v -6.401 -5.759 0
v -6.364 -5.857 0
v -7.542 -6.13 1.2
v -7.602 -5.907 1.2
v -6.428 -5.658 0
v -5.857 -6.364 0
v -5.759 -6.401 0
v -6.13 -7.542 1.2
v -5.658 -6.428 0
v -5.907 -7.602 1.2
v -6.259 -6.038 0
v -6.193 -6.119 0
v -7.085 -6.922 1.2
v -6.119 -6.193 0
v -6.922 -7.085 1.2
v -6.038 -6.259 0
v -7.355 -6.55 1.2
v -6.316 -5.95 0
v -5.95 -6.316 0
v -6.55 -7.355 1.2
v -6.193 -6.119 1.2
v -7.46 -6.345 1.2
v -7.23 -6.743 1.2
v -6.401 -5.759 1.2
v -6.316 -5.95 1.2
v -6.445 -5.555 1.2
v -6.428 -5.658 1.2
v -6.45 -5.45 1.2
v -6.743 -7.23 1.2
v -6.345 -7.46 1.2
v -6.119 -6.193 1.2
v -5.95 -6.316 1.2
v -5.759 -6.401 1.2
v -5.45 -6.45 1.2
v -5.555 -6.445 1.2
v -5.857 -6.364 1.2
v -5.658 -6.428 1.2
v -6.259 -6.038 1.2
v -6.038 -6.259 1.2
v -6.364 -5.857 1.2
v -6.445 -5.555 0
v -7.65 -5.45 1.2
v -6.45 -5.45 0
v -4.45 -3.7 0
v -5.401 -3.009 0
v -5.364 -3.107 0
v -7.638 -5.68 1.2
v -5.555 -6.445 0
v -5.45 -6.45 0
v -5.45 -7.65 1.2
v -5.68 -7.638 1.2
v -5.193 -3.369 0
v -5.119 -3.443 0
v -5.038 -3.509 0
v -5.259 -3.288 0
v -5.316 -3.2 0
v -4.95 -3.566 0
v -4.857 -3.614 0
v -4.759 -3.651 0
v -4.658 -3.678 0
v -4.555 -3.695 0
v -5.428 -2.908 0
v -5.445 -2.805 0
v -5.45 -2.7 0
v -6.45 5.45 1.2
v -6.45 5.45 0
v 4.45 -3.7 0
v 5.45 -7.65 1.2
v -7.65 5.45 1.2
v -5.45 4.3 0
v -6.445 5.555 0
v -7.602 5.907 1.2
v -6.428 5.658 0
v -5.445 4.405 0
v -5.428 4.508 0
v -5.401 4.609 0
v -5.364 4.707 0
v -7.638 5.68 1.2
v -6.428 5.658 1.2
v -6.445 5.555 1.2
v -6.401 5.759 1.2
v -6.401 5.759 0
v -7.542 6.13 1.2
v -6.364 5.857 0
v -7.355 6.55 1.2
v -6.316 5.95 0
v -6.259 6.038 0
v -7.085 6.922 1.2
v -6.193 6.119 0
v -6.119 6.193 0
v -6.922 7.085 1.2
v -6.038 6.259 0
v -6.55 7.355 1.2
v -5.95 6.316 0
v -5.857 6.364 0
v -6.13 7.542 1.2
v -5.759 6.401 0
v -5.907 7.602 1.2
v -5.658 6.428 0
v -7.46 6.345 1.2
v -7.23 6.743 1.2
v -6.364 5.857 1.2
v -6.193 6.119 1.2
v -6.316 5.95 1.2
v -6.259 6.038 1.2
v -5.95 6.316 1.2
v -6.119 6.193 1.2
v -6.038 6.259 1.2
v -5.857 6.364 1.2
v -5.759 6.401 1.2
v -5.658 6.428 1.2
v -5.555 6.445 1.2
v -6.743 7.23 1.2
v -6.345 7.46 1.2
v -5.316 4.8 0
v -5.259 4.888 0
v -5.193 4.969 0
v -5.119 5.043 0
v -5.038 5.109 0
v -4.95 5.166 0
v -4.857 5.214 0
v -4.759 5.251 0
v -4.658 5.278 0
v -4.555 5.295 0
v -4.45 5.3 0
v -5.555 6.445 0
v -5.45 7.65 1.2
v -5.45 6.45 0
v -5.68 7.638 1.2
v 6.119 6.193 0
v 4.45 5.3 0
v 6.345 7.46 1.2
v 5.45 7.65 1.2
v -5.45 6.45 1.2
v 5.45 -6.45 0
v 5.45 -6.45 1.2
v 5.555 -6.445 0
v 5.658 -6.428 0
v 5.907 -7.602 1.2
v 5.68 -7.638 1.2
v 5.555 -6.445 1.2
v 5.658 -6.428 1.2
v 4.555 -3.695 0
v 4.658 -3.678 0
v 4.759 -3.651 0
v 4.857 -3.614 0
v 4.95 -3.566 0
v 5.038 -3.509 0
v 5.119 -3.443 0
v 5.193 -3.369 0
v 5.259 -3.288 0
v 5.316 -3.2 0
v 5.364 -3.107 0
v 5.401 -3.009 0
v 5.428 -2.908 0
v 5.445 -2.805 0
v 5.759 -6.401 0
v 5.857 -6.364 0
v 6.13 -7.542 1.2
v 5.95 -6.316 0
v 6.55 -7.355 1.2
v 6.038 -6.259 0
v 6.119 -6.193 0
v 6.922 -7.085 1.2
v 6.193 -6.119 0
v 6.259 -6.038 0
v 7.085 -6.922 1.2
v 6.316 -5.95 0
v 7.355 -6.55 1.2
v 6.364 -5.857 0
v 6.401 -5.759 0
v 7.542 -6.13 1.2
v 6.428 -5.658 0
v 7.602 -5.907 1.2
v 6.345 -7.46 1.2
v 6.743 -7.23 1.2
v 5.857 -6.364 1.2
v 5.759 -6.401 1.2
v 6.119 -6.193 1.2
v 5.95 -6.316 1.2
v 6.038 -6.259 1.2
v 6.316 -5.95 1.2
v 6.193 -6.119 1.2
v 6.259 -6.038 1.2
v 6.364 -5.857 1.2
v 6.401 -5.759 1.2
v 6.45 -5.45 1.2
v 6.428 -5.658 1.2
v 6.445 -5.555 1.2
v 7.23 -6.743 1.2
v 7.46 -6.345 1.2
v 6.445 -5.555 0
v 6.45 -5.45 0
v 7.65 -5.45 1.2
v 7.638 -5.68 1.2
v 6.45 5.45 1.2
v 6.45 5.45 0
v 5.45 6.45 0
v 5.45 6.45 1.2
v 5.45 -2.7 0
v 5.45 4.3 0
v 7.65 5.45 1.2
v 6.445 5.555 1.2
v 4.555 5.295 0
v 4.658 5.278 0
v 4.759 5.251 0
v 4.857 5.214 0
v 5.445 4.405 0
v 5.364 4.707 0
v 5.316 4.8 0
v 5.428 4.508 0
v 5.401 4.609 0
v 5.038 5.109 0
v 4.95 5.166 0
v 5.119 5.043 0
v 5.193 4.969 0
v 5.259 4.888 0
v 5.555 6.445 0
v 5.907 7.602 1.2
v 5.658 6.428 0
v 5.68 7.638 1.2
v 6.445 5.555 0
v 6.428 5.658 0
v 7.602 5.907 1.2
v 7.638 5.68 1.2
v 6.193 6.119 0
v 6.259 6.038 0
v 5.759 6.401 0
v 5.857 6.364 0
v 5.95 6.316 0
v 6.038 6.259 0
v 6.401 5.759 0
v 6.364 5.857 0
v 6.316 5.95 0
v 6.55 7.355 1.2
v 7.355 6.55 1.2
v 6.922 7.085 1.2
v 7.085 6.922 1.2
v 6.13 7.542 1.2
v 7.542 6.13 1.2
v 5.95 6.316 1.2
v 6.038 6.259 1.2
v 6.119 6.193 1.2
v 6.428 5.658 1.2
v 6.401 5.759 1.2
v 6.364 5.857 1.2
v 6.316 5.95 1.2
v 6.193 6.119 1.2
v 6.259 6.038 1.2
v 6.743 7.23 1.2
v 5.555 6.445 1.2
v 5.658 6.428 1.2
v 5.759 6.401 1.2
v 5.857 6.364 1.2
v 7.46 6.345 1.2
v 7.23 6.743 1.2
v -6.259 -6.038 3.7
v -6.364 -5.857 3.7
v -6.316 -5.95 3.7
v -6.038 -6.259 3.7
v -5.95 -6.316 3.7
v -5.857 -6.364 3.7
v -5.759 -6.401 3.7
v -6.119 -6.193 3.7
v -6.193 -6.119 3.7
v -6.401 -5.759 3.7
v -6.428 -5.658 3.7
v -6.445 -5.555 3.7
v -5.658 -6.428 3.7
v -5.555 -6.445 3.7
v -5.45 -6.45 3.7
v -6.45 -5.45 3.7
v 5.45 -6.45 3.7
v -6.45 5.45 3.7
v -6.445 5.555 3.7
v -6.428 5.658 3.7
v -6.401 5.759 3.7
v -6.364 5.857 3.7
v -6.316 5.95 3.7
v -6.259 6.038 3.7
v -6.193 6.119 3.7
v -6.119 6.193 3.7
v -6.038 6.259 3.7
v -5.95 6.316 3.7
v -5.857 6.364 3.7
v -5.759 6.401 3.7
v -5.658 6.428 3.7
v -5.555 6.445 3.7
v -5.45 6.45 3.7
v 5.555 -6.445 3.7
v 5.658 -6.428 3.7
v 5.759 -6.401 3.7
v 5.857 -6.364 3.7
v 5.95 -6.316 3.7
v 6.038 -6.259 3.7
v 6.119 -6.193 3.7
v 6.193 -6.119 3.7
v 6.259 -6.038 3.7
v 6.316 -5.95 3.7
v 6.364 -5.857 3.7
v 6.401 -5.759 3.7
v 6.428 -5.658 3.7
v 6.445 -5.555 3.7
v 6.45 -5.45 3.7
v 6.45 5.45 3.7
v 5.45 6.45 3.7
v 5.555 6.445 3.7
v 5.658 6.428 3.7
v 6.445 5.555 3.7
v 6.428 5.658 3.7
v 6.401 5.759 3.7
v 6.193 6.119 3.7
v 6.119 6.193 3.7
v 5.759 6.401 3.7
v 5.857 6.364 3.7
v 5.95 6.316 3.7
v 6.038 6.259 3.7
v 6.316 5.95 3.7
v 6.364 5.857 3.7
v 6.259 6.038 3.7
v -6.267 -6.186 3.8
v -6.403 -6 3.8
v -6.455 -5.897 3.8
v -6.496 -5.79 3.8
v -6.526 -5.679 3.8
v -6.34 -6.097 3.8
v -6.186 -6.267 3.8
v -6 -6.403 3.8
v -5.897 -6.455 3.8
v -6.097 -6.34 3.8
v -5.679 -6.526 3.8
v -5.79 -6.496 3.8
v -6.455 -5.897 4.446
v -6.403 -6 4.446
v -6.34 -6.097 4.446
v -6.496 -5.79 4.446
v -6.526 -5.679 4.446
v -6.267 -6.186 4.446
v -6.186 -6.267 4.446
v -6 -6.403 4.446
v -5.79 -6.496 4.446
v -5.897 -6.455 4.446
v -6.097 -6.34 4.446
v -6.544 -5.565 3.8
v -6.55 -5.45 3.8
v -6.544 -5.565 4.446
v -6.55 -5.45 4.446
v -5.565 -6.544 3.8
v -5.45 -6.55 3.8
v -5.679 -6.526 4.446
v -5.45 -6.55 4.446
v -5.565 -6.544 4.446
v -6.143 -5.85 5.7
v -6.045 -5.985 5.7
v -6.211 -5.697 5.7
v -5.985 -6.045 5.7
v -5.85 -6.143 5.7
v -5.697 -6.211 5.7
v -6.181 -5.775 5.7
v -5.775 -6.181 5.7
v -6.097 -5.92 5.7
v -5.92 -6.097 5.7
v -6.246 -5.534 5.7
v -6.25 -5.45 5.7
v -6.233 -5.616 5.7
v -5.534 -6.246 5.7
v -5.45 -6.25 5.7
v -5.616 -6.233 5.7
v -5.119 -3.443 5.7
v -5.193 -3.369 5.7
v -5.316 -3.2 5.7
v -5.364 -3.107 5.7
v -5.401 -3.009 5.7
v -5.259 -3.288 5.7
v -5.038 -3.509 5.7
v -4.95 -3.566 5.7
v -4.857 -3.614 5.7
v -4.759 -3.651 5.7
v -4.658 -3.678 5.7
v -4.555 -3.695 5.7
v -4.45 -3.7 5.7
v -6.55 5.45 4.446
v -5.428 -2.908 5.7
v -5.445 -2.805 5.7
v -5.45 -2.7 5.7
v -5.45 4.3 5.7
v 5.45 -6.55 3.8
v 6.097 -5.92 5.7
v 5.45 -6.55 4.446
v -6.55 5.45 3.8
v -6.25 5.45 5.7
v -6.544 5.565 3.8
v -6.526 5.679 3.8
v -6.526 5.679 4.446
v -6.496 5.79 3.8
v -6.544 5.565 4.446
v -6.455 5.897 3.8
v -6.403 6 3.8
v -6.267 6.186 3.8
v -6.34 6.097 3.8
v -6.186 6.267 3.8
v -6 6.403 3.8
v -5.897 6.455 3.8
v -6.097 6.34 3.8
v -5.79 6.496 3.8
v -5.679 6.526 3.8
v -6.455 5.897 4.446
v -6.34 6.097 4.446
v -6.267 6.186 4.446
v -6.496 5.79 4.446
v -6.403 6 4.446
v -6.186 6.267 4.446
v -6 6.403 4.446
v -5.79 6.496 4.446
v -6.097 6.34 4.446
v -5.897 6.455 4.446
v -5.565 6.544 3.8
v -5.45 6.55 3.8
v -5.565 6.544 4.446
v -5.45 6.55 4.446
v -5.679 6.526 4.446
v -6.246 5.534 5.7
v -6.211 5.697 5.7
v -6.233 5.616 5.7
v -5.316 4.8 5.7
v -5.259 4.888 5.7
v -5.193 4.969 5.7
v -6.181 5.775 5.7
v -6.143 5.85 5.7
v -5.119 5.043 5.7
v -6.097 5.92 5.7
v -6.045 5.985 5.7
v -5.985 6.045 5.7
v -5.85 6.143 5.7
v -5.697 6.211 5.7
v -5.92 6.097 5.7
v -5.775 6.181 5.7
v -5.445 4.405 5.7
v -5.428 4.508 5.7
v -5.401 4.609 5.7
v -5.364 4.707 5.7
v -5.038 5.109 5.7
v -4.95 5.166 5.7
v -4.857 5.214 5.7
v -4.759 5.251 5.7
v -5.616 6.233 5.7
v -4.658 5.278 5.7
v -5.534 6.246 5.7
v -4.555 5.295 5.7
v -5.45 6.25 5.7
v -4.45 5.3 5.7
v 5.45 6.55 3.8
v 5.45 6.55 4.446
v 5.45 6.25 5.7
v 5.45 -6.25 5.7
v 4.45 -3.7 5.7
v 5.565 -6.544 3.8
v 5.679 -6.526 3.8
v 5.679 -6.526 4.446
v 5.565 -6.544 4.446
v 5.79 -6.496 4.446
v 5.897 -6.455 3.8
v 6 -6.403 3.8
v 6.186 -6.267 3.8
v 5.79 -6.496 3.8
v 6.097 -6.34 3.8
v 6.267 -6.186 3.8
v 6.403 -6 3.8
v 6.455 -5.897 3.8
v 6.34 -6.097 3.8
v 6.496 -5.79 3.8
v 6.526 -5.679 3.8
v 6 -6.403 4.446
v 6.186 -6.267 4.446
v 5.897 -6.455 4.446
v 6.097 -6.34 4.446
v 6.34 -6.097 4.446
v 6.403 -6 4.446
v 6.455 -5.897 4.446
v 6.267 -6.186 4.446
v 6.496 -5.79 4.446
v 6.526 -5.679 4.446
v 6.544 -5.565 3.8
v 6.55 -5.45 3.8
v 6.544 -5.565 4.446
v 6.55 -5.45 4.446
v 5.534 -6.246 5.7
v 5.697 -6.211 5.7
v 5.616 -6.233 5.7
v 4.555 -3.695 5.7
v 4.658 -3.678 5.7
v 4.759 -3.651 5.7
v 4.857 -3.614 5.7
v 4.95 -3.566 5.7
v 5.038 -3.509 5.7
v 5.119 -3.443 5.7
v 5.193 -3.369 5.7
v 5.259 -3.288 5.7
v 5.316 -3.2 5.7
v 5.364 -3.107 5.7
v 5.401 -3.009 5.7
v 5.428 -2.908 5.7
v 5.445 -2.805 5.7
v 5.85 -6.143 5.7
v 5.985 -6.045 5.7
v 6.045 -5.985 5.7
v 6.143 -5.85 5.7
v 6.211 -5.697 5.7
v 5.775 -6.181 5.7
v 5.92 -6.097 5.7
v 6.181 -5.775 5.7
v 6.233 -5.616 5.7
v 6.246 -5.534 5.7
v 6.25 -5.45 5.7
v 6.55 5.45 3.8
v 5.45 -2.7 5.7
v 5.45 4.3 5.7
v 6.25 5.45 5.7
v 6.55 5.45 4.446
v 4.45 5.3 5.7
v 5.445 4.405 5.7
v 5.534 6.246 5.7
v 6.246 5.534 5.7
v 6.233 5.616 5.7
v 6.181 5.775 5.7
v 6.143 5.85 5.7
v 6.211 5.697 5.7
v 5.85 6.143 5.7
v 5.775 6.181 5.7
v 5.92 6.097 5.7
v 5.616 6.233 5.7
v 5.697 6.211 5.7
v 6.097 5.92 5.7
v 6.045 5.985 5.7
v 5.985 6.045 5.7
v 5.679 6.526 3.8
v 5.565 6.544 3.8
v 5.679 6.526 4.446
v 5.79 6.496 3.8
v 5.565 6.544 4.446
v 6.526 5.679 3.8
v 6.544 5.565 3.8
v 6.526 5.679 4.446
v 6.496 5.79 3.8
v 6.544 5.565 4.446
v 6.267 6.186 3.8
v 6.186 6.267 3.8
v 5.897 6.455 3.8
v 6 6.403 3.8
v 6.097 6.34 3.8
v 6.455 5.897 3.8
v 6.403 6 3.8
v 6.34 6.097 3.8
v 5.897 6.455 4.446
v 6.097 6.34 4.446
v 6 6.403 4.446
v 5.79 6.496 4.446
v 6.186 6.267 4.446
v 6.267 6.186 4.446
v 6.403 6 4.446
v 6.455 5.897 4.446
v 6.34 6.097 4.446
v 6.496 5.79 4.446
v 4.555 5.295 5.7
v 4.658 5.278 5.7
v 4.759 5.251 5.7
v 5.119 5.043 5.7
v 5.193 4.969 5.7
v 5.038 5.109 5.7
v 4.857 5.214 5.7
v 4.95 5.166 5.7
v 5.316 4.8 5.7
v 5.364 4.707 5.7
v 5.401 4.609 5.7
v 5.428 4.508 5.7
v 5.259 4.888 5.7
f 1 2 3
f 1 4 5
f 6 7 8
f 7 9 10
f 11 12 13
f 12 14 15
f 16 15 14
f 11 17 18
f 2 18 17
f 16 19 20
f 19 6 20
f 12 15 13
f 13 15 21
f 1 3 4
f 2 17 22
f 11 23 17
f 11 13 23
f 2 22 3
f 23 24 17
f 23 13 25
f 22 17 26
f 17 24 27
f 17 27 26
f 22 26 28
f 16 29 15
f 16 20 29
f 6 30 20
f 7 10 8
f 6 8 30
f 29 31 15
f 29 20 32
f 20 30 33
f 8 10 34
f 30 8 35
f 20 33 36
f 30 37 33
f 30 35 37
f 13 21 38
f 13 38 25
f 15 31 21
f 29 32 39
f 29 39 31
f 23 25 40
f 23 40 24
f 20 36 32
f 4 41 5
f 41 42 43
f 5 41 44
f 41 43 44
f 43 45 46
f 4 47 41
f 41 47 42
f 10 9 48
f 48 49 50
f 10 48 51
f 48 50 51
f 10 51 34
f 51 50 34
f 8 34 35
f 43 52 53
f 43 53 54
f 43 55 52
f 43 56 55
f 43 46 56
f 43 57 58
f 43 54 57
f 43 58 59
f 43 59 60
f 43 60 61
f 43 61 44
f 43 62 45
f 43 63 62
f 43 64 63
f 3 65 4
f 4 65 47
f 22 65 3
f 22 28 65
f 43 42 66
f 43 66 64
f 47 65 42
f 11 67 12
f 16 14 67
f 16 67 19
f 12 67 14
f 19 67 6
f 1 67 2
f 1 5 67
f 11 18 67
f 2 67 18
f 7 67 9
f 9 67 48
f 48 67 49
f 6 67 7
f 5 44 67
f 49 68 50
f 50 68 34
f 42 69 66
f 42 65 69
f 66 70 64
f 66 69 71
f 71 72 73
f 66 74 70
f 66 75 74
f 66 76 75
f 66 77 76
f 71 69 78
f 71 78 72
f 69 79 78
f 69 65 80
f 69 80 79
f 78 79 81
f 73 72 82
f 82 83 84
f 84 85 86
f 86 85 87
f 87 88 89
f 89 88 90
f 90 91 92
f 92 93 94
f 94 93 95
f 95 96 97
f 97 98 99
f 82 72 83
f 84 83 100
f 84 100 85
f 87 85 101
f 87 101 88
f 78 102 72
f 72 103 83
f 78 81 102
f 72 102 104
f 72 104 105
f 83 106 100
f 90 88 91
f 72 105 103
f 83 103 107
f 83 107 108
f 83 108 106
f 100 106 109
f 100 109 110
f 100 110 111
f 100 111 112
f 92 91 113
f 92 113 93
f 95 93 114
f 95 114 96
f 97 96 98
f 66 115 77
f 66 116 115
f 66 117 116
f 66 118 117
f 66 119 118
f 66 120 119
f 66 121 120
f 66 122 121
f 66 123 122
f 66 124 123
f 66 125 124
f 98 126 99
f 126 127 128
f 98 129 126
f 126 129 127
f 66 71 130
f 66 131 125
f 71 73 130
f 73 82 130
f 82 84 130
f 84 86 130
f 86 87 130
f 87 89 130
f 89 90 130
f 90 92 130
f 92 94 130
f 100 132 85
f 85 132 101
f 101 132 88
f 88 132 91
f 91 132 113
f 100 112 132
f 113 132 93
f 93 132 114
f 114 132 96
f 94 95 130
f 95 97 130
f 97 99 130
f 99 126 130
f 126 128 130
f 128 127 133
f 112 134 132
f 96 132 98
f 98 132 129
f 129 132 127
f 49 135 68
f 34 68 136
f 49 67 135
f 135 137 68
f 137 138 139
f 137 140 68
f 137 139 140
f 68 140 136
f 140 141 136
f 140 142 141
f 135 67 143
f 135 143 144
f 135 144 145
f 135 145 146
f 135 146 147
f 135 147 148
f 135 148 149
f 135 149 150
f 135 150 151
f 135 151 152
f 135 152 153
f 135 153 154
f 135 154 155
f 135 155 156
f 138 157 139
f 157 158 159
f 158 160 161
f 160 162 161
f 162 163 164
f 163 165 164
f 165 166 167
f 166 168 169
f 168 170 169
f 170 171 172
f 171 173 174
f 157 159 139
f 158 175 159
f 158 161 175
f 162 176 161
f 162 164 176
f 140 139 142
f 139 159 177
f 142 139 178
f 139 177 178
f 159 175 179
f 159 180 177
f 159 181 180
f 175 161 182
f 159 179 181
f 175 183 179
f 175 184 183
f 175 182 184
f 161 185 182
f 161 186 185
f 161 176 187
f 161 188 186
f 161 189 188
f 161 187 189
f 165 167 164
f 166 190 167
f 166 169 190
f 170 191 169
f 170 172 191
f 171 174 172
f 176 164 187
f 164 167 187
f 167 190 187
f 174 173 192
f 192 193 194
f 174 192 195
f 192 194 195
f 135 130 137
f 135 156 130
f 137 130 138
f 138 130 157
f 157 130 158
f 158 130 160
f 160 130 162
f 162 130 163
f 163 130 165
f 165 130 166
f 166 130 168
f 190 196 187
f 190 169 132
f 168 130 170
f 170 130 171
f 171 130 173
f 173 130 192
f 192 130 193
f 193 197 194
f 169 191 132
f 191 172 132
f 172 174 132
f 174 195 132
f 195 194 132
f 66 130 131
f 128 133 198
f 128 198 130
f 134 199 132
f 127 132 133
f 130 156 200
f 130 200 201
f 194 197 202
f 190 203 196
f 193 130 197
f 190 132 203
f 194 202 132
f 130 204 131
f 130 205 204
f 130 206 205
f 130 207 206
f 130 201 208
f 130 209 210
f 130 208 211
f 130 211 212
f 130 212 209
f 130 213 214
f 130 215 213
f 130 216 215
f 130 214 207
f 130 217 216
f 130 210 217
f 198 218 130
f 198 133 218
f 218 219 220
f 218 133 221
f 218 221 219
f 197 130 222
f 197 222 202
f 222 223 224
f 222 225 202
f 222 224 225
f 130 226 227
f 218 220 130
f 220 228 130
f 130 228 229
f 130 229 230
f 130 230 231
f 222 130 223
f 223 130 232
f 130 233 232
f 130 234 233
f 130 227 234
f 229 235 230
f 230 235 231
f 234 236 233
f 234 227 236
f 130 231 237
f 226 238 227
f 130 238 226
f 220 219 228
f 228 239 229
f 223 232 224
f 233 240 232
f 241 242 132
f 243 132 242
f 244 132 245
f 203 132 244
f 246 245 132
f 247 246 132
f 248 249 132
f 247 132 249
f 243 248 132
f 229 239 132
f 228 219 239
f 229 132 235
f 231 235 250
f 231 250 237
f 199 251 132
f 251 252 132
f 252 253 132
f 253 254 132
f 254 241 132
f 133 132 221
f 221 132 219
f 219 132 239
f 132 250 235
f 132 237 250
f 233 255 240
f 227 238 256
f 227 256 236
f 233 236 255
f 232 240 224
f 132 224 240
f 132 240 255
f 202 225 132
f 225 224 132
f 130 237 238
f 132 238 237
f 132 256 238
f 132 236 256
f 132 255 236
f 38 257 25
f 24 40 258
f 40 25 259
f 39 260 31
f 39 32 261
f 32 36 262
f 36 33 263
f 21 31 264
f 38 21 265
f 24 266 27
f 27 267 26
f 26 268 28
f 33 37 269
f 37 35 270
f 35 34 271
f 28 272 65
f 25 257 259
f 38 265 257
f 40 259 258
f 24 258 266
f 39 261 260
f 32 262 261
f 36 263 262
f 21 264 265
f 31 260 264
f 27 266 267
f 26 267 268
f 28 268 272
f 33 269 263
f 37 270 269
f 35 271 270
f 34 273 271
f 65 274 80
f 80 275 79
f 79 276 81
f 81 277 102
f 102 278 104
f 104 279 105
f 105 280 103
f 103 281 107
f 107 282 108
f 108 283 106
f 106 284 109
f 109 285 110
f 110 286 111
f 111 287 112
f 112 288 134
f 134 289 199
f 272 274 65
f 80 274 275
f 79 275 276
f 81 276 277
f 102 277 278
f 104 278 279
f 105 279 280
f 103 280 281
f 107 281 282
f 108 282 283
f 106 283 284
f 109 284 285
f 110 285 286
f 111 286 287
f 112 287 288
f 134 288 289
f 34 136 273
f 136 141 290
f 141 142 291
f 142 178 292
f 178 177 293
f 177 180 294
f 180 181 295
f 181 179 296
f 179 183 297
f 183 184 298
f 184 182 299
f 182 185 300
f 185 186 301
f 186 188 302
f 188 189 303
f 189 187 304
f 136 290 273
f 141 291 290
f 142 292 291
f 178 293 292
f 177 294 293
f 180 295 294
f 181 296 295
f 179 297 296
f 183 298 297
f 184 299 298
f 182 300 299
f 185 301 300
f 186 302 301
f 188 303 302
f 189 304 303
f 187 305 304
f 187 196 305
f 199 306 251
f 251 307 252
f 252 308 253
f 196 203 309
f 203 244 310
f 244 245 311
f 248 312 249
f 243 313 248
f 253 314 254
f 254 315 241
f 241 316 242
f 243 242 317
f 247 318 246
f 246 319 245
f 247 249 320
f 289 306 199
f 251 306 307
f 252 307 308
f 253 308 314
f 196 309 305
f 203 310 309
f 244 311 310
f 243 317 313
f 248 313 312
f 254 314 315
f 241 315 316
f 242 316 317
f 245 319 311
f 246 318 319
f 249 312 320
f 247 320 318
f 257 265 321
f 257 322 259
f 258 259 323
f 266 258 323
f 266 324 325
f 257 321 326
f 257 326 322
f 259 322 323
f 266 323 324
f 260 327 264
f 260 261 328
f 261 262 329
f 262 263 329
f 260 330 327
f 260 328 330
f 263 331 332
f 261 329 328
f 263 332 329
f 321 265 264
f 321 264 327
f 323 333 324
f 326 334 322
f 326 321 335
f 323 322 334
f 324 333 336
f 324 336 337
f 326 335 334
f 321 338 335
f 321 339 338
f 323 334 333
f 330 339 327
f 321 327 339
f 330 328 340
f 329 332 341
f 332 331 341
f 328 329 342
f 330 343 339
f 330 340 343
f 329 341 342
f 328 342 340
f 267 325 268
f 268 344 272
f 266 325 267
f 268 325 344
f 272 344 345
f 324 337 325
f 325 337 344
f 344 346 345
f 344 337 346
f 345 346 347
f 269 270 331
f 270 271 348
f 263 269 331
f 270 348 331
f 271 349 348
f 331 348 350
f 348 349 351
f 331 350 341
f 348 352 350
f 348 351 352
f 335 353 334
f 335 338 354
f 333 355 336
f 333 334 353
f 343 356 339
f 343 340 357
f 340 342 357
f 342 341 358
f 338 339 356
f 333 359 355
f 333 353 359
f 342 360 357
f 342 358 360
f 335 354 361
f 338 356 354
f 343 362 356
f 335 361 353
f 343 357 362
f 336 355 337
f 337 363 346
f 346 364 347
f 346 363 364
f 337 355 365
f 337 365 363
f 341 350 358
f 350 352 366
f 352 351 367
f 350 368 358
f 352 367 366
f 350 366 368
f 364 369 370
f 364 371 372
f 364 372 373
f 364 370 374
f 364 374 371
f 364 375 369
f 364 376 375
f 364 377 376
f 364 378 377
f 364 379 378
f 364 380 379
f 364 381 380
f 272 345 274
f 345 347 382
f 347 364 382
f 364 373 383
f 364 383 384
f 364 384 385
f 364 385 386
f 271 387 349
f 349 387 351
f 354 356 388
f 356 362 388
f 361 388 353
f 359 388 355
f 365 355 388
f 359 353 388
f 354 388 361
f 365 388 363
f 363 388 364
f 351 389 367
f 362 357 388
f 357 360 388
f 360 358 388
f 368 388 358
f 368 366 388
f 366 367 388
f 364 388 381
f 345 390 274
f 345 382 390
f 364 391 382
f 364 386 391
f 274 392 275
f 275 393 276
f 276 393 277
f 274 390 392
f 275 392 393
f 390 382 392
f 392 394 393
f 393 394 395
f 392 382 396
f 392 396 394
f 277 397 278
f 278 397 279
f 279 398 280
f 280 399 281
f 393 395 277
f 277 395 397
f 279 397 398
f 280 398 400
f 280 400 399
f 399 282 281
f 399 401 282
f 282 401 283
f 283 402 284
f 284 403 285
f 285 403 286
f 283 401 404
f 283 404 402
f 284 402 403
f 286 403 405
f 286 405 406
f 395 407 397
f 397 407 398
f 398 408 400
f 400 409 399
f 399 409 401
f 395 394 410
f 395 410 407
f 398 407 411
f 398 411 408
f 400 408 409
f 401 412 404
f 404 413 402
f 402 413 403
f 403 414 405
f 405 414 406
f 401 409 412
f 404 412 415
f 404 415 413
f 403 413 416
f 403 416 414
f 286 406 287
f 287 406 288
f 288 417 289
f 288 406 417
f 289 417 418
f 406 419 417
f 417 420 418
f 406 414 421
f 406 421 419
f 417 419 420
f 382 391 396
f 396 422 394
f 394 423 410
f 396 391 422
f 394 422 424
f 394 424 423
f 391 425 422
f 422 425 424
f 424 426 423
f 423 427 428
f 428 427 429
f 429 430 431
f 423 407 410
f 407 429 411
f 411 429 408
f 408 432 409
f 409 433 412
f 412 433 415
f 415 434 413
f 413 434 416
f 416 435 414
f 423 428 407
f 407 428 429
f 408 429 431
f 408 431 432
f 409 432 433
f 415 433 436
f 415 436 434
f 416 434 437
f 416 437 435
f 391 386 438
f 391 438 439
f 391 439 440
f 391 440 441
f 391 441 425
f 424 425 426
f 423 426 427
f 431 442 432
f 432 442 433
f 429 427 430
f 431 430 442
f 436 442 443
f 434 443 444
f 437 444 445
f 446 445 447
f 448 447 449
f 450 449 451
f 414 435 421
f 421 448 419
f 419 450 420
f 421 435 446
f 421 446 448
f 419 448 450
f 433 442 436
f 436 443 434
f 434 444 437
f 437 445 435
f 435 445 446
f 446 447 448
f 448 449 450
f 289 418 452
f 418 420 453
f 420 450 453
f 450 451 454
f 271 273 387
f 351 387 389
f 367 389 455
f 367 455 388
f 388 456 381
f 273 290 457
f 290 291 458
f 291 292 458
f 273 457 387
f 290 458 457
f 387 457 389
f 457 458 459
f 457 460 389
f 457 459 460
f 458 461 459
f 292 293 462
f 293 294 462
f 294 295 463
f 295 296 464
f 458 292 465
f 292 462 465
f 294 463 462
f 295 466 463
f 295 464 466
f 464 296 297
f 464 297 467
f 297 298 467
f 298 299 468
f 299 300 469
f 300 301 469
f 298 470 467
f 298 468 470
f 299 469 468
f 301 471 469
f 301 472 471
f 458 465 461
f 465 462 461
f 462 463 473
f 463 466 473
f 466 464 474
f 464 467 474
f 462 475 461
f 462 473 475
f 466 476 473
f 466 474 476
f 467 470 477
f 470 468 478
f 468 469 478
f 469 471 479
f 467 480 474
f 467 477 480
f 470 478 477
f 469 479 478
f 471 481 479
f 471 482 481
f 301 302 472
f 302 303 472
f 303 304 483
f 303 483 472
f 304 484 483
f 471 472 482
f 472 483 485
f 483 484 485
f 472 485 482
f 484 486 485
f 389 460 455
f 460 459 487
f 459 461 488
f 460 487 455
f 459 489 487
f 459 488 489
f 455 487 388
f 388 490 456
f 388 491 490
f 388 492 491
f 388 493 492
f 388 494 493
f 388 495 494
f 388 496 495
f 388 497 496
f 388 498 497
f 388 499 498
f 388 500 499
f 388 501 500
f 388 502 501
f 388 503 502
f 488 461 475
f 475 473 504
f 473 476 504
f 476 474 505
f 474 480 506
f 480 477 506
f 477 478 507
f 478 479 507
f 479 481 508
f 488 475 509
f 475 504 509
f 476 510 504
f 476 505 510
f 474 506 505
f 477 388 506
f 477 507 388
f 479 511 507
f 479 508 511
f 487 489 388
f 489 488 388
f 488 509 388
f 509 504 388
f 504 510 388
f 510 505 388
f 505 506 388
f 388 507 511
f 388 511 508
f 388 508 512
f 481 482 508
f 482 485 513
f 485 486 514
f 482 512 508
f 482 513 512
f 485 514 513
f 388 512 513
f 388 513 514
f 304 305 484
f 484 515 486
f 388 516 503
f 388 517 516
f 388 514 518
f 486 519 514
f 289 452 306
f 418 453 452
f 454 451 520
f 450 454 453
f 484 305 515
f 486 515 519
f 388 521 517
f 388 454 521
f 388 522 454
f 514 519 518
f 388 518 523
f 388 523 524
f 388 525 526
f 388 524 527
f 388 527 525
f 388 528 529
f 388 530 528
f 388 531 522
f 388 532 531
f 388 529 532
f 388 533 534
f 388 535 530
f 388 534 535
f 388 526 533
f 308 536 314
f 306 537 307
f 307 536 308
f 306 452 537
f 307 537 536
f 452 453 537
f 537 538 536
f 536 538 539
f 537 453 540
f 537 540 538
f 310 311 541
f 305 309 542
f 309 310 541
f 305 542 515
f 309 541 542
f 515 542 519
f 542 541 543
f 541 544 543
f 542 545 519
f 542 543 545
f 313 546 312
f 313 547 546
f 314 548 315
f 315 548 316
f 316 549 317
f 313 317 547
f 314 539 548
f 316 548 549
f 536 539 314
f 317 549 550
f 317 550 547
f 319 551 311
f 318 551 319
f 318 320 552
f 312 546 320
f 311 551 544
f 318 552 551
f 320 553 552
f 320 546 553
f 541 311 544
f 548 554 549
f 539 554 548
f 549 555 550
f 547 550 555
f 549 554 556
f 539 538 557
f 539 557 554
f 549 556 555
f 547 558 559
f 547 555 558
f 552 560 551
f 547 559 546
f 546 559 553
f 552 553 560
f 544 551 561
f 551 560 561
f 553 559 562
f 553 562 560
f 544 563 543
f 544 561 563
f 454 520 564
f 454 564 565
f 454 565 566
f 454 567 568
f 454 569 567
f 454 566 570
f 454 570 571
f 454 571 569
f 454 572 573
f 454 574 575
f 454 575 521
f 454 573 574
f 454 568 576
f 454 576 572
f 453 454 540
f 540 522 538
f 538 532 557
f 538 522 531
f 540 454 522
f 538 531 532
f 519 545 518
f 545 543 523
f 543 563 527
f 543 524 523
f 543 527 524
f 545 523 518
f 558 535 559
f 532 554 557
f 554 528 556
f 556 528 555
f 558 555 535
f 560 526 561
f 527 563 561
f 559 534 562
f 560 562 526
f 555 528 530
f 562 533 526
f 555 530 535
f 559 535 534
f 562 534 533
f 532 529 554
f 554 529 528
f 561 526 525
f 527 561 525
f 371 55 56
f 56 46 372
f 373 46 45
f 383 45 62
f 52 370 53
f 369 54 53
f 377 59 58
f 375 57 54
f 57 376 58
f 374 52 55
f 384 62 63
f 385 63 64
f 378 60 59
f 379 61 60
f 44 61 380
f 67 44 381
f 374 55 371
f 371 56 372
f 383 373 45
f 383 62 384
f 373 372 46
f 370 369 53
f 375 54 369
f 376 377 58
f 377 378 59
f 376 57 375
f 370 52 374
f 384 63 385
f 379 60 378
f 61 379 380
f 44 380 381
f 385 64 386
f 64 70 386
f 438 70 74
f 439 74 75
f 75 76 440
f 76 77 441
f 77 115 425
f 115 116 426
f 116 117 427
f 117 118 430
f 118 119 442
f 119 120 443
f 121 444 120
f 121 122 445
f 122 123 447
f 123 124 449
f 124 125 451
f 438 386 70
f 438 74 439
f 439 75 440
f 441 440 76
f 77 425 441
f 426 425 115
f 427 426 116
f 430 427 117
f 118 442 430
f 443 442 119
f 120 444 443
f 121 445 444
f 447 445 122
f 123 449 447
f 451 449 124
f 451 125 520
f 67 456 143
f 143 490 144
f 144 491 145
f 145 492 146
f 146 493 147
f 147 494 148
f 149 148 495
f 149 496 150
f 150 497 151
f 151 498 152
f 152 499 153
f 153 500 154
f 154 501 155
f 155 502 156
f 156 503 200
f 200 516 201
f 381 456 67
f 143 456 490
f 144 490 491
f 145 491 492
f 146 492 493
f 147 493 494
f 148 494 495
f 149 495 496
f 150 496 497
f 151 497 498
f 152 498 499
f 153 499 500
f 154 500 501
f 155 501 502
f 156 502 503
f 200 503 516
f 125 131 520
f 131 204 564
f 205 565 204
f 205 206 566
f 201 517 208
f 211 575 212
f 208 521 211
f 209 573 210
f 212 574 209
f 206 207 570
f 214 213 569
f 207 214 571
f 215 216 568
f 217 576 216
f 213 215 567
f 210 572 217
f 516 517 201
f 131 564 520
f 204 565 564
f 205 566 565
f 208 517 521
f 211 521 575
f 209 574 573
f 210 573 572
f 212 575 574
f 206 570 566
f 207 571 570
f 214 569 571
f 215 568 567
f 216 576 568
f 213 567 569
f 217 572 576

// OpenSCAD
// Toyota glove box latch grommet
// Default values are for 2025 4runner.

// For other years/models, use the customizer panel to change these values
// and save the config with a name with the model & year:
//   NOTES
//   glove_box_hole_vertical
//   glove_box_hole_horizontal
//   pawl_hole_horizontal_offset

// all values in mm
// the "// 0.1" comments control the customizer panel numerical fields

/* [Vehicle Site Reference Dimensions] */
NOTES = "Install with the thick wall towards the door.";
glove_box_wall_thickness = 2.5;    // 0.1
glove_box_hole_vertical = 13;      // 0.1
glove_box_hole_horizontal = 13;    // 0.1
pawl_horizontal = 8;               // 0.1
pawl_vertical = 8;                 // 0.1

/* [Parameters] */
fitment_clearance = 0.05;          // 0.01
corner_radius = 1;                 // 0.1

retainer_thickness = 2;            // 0.1
retainer_oversize = 0.1;           // 0.01
tip_undersize = 0.2;               // 0.1
retainer_tip_ratio = 0.66;         // [0.25:0.01:1]

flange_thickness = 1.2;            // 0.1

pawl_clearance = 0.5;              // 0.1
pawl_hole_horizontal_offset = 0.8; // 0.1
pawl_hole_vertical_min_wall = 1;   // 0.1
pawl_hole_corner_radius = 1;       // 0.1


fc = fitment_clearance;
cr = corner_radius;
wall_thickness = glove_box_wall_thickness;
trunk_w = glove_box_hole_vertical - fc*2;
trunk_d = glove_box_hole_horizontal - fc*2;
ret_o = retainer_oversize;
ret_u = tip_undersize;
ret_w = trunk_w + ret_o*2;
ret_d = trunk_d + ret_o*2;
ret_h = retainer_thickness;
flange_h = flange_thickness;
flange_w = trunk_w + flange_h*2;
flange_d = trunk_d + flange_h*2;
hole_w = trunk_w - pawl_hole_vertical_min_wall*2;
hole_d = pawl_horizontal + pawl_clearance*2;
z_offset = $preview ? -flange_h : 0 ;

min_hole_w = pawl_vertical + pawl_clearance*2;
assert(hole_w >= min_hole_w);
// The hole width and depth come out almost the same, but they actually reference off of different things.
//
// The hole depth is the front-to-back size.
// It's the horizontal size of the pawl plus 2 times the pawl horizontal clearance.
// IE, it's as small as possible for the least door-rattle.
//
// The hole width is the top-to-bottom size.
// It's the vertical size of the grommet trunk minus 2 times the pawl hole minimum wall thickness.
// EI, it's as large as possible for the least chance of the side of the pawl hitting the side of the hole.
//
// In the case of the 2025 4Runner, the hole in the glove box and the shape of the pawl are both perfectly square,
// so the hole ends up coming out close to square too. But other vehicles have other dimensions where the distiction may have more effect.

/* [Hidden] */
e = 0.1;
// arc smoothness
//$fn = 32;
$fa = 6;
$fs = 0.1;

// square cylinder
module sqyl (w=0,d=0,h=0,r=0,r1=-1,r2=-1,center=false) {
 ra = (r1<0) ? r : r1 ;
 rb = (r2<0) ? r : r2 ;
 R = max(ra,rb);
 W = w - R*2;
 D = d - R*2;
 t = (center) ? [-(W/2),-(D/2),0] : [R,R,0] ;
 q = [[0,0,0],[0,D,0],[W,D,0],[W,0,0]];
 translate(t) hull() for(v=q) translate(v) cylinder(h=h,r1=ra,r2=rb,center=center);
}

module grommet() {
  difference() {
    union() {
      // flange
      translate([0,0,flange_h/2]) sqyl(w=flange_w,d=flange_d,h=flange_h,r1=cr,r2=cr+flange_h,center=true);
      // trunk
      ht = wall_thickness + e*2;
      translate([0,0,ht/2+flange_h-e]) sqyl(w=trunk_w,d=trunk_d,h=ht,r=cr,center=true);
      // retainer
      ha = ret_o; // 45 deg
      hb = (ret_h-ha)*retainer_tip_ratio;
      translate([0,0,flange_h+wall_thickness]) hull() {
        translate([0,0,ha/2]) sqyl(w=trunk_w+ret_o*2,d=trunk_d+ret_o*2,h=ha,r1=cr,r2=cr+ret_o,center=true);
        translate([0,0,ret_h-hb/2]) sqyl(w=trunk_w+ret_o*2,d=trunk_d+ret_o*2,h=hb,r1=cr+ret_o,r2=cr-ret_u,center=true);
      }
    }
    // hole
    hh = flange_h + wall_thickness + ret_h + e*2;
    translate([0,pawl_hole_horizontal_offset,hh/2-e]) sqyl(w=hole_w,d=hole_d,h=hh,r=pawl_hole_corner_radius,center=true);
  }
}

translate([0,0,z_offset]) grommet();

echo ();
echo ("****************************************");
echo ();
echo (NOTES);
echo ();
echo ("****************************************");
echo ();
